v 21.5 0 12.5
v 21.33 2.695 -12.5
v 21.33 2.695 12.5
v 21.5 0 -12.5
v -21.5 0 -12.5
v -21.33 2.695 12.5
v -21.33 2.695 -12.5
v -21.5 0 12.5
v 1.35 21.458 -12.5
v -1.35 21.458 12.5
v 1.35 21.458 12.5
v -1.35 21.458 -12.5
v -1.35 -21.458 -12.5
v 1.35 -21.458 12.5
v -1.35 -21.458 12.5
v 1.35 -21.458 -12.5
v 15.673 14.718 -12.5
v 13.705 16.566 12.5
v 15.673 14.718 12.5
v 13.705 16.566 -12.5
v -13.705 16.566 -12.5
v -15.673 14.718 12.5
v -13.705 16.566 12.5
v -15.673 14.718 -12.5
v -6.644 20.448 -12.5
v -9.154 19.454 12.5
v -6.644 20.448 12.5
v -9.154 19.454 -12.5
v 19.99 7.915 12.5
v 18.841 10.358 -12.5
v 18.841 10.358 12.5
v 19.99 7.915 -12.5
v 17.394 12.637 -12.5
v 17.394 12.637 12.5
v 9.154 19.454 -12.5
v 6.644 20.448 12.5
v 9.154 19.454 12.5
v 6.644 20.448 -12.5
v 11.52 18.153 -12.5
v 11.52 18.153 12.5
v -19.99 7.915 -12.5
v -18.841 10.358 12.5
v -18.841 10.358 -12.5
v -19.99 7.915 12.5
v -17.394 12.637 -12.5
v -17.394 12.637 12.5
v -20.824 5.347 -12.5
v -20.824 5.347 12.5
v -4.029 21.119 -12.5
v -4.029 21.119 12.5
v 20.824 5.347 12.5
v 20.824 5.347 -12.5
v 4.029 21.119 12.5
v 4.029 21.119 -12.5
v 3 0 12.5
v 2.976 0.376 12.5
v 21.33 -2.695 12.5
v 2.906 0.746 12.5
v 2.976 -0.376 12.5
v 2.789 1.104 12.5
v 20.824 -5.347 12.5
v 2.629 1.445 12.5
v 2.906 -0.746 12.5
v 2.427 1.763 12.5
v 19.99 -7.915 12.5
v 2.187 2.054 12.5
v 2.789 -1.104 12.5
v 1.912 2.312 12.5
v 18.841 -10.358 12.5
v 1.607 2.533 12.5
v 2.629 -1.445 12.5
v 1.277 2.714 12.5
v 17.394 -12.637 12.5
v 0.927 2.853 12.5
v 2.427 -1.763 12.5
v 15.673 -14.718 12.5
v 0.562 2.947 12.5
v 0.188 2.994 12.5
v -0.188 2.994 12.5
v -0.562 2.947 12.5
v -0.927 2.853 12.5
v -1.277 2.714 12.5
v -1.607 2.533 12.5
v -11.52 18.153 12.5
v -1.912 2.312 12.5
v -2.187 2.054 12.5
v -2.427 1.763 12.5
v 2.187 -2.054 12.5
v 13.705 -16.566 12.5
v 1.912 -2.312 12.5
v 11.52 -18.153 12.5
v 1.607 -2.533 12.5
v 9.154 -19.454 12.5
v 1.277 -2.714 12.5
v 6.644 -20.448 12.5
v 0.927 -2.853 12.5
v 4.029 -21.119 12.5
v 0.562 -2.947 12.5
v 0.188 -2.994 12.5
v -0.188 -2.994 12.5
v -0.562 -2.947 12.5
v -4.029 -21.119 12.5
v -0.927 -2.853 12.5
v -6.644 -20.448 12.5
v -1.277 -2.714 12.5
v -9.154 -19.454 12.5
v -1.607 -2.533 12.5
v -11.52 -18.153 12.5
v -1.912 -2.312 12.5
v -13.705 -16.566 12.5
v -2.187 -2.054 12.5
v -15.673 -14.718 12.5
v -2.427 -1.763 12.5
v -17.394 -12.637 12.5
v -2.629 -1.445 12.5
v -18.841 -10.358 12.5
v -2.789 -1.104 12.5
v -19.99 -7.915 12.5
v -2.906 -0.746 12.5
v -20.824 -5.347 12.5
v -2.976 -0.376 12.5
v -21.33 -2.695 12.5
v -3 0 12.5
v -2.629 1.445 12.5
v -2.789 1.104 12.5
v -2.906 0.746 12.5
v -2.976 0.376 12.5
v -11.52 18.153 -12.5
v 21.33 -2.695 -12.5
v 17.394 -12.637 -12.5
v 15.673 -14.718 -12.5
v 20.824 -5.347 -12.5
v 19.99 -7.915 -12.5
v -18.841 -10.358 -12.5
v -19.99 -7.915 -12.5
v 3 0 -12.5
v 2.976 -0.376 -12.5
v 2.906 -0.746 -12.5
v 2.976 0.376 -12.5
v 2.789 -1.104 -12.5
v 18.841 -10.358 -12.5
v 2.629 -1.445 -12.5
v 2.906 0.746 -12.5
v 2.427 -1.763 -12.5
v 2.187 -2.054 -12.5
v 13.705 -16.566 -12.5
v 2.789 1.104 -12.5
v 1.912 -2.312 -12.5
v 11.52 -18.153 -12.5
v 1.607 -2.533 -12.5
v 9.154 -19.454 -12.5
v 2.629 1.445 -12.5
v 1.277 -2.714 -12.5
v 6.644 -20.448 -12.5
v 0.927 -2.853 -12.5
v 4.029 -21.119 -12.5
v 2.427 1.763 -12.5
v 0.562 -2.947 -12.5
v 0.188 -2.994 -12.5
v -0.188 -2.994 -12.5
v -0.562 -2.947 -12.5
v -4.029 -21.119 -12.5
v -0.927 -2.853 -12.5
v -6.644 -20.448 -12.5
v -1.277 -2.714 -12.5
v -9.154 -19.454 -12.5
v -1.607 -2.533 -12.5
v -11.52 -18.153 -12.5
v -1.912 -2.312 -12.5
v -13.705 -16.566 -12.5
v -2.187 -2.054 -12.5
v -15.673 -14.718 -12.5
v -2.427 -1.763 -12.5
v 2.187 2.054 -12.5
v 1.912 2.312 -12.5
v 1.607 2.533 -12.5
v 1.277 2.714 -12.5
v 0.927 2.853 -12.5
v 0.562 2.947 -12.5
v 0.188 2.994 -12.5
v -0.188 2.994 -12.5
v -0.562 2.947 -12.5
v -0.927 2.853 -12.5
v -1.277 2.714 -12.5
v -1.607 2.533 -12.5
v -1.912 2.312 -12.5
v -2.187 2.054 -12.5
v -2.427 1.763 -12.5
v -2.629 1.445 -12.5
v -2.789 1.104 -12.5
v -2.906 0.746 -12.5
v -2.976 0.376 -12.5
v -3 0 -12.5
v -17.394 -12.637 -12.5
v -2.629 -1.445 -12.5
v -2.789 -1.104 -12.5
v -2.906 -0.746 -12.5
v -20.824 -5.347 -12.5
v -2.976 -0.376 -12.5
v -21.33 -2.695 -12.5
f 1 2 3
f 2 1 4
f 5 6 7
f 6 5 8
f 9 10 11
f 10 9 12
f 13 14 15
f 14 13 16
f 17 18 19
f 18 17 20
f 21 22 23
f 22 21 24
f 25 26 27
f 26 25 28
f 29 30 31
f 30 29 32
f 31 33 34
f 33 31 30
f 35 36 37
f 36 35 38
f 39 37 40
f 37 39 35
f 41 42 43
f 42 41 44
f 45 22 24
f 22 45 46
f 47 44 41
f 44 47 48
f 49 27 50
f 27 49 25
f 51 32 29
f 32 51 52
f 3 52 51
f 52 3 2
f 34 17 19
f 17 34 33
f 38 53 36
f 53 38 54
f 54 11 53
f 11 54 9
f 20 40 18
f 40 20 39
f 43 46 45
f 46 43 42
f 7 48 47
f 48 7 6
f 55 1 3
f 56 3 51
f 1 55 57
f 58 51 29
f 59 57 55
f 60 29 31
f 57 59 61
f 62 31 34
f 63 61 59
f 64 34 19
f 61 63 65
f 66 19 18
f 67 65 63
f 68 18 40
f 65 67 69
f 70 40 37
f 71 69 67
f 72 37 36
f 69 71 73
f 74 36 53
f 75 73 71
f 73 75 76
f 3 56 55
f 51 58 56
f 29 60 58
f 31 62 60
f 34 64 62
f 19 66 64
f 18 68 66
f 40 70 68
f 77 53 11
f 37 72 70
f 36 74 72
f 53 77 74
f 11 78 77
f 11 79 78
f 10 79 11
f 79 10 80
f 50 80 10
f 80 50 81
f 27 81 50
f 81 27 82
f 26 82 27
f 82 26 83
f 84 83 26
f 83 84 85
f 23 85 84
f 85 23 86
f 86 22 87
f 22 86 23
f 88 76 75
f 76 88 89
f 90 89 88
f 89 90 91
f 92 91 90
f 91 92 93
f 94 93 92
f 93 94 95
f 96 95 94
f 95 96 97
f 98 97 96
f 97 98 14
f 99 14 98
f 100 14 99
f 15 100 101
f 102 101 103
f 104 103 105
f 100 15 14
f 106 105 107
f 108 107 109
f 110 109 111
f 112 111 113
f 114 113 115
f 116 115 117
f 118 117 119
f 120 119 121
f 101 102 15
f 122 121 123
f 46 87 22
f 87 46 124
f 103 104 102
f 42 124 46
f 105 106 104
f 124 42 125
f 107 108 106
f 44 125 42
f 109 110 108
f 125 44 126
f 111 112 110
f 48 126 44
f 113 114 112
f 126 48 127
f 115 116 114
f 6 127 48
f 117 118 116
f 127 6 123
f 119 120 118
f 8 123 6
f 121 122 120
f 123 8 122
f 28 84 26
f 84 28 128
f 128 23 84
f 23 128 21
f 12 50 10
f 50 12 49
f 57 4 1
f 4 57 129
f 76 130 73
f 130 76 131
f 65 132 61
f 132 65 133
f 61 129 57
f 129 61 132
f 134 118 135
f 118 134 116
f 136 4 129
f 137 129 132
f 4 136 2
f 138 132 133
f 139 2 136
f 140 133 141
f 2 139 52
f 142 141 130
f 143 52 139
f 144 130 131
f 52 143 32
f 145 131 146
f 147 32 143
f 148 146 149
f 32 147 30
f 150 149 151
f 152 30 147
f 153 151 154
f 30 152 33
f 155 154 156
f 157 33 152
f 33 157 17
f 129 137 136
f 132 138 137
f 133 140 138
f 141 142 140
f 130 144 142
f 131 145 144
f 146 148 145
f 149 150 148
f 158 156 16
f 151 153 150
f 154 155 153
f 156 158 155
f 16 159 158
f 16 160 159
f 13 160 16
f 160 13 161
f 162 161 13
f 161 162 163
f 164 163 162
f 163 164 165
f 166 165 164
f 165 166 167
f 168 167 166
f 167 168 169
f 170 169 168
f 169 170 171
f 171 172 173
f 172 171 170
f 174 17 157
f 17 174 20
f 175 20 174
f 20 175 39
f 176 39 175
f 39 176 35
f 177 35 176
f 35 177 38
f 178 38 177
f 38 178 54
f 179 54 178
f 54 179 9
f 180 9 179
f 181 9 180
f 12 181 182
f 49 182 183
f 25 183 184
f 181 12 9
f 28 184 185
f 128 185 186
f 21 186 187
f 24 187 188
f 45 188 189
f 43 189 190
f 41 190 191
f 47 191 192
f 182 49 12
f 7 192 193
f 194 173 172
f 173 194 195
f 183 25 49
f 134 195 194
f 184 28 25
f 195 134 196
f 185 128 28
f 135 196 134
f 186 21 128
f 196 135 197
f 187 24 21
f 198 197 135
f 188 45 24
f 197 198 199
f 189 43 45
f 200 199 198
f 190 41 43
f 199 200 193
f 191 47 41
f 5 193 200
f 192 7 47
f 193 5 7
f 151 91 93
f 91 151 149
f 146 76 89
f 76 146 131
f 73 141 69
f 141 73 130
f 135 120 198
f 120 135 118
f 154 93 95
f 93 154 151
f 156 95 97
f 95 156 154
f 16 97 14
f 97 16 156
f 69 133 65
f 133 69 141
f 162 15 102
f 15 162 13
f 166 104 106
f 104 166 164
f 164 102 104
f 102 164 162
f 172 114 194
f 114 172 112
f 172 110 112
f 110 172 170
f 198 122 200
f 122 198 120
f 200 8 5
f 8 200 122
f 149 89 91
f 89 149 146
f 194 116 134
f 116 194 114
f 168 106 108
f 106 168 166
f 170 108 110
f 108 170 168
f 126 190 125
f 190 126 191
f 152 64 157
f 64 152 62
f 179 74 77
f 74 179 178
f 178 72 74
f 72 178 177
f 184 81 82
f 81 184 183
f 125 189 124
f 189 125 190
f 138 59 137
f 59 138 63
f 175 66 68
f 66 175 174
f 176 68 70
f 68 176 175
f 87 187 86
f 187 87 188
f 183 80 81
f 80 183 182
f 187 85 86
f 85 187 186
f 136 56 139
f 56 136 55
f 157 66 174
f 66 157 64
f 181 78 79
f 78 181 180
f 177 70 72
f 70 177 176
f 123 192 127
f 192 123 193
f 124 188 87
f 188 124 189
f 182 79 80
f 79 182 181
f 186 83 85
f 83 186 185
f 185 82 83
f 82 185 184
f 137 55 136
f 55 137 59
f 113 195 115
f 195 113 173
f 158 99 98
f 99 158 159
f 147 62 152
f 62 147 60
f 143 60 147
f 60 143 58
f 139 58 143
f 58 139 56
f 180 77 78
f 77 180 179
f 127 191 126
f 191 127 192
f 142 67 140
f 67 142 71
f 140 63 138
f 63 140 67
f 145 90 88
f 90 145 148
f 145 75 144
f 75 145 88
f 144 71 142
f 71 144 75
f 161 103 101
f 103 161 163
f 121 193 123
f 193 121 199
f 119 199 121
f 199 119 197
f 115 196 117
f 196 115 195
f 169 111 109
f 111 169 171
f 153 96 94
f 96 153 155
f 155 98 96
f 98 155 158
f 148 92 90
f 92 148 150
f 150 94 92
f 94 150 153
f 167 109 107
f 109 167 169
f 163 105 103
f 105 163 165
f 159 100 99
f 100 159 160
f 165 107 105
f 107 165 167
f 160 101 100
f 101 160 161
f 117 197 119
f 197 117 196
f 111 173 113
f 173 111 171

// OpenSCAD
$fn = 50;


difference() {
	union() {
		translate(v = [0, 0, -12.5000000000]) {
			cylinder(h = 25, r = 21.5000000000);
		}
	}
	union() {
		translate(v = [0, 0, -100.0000000000]) {
			cylinder(h = 200, r = 3);
		}
	}
}
